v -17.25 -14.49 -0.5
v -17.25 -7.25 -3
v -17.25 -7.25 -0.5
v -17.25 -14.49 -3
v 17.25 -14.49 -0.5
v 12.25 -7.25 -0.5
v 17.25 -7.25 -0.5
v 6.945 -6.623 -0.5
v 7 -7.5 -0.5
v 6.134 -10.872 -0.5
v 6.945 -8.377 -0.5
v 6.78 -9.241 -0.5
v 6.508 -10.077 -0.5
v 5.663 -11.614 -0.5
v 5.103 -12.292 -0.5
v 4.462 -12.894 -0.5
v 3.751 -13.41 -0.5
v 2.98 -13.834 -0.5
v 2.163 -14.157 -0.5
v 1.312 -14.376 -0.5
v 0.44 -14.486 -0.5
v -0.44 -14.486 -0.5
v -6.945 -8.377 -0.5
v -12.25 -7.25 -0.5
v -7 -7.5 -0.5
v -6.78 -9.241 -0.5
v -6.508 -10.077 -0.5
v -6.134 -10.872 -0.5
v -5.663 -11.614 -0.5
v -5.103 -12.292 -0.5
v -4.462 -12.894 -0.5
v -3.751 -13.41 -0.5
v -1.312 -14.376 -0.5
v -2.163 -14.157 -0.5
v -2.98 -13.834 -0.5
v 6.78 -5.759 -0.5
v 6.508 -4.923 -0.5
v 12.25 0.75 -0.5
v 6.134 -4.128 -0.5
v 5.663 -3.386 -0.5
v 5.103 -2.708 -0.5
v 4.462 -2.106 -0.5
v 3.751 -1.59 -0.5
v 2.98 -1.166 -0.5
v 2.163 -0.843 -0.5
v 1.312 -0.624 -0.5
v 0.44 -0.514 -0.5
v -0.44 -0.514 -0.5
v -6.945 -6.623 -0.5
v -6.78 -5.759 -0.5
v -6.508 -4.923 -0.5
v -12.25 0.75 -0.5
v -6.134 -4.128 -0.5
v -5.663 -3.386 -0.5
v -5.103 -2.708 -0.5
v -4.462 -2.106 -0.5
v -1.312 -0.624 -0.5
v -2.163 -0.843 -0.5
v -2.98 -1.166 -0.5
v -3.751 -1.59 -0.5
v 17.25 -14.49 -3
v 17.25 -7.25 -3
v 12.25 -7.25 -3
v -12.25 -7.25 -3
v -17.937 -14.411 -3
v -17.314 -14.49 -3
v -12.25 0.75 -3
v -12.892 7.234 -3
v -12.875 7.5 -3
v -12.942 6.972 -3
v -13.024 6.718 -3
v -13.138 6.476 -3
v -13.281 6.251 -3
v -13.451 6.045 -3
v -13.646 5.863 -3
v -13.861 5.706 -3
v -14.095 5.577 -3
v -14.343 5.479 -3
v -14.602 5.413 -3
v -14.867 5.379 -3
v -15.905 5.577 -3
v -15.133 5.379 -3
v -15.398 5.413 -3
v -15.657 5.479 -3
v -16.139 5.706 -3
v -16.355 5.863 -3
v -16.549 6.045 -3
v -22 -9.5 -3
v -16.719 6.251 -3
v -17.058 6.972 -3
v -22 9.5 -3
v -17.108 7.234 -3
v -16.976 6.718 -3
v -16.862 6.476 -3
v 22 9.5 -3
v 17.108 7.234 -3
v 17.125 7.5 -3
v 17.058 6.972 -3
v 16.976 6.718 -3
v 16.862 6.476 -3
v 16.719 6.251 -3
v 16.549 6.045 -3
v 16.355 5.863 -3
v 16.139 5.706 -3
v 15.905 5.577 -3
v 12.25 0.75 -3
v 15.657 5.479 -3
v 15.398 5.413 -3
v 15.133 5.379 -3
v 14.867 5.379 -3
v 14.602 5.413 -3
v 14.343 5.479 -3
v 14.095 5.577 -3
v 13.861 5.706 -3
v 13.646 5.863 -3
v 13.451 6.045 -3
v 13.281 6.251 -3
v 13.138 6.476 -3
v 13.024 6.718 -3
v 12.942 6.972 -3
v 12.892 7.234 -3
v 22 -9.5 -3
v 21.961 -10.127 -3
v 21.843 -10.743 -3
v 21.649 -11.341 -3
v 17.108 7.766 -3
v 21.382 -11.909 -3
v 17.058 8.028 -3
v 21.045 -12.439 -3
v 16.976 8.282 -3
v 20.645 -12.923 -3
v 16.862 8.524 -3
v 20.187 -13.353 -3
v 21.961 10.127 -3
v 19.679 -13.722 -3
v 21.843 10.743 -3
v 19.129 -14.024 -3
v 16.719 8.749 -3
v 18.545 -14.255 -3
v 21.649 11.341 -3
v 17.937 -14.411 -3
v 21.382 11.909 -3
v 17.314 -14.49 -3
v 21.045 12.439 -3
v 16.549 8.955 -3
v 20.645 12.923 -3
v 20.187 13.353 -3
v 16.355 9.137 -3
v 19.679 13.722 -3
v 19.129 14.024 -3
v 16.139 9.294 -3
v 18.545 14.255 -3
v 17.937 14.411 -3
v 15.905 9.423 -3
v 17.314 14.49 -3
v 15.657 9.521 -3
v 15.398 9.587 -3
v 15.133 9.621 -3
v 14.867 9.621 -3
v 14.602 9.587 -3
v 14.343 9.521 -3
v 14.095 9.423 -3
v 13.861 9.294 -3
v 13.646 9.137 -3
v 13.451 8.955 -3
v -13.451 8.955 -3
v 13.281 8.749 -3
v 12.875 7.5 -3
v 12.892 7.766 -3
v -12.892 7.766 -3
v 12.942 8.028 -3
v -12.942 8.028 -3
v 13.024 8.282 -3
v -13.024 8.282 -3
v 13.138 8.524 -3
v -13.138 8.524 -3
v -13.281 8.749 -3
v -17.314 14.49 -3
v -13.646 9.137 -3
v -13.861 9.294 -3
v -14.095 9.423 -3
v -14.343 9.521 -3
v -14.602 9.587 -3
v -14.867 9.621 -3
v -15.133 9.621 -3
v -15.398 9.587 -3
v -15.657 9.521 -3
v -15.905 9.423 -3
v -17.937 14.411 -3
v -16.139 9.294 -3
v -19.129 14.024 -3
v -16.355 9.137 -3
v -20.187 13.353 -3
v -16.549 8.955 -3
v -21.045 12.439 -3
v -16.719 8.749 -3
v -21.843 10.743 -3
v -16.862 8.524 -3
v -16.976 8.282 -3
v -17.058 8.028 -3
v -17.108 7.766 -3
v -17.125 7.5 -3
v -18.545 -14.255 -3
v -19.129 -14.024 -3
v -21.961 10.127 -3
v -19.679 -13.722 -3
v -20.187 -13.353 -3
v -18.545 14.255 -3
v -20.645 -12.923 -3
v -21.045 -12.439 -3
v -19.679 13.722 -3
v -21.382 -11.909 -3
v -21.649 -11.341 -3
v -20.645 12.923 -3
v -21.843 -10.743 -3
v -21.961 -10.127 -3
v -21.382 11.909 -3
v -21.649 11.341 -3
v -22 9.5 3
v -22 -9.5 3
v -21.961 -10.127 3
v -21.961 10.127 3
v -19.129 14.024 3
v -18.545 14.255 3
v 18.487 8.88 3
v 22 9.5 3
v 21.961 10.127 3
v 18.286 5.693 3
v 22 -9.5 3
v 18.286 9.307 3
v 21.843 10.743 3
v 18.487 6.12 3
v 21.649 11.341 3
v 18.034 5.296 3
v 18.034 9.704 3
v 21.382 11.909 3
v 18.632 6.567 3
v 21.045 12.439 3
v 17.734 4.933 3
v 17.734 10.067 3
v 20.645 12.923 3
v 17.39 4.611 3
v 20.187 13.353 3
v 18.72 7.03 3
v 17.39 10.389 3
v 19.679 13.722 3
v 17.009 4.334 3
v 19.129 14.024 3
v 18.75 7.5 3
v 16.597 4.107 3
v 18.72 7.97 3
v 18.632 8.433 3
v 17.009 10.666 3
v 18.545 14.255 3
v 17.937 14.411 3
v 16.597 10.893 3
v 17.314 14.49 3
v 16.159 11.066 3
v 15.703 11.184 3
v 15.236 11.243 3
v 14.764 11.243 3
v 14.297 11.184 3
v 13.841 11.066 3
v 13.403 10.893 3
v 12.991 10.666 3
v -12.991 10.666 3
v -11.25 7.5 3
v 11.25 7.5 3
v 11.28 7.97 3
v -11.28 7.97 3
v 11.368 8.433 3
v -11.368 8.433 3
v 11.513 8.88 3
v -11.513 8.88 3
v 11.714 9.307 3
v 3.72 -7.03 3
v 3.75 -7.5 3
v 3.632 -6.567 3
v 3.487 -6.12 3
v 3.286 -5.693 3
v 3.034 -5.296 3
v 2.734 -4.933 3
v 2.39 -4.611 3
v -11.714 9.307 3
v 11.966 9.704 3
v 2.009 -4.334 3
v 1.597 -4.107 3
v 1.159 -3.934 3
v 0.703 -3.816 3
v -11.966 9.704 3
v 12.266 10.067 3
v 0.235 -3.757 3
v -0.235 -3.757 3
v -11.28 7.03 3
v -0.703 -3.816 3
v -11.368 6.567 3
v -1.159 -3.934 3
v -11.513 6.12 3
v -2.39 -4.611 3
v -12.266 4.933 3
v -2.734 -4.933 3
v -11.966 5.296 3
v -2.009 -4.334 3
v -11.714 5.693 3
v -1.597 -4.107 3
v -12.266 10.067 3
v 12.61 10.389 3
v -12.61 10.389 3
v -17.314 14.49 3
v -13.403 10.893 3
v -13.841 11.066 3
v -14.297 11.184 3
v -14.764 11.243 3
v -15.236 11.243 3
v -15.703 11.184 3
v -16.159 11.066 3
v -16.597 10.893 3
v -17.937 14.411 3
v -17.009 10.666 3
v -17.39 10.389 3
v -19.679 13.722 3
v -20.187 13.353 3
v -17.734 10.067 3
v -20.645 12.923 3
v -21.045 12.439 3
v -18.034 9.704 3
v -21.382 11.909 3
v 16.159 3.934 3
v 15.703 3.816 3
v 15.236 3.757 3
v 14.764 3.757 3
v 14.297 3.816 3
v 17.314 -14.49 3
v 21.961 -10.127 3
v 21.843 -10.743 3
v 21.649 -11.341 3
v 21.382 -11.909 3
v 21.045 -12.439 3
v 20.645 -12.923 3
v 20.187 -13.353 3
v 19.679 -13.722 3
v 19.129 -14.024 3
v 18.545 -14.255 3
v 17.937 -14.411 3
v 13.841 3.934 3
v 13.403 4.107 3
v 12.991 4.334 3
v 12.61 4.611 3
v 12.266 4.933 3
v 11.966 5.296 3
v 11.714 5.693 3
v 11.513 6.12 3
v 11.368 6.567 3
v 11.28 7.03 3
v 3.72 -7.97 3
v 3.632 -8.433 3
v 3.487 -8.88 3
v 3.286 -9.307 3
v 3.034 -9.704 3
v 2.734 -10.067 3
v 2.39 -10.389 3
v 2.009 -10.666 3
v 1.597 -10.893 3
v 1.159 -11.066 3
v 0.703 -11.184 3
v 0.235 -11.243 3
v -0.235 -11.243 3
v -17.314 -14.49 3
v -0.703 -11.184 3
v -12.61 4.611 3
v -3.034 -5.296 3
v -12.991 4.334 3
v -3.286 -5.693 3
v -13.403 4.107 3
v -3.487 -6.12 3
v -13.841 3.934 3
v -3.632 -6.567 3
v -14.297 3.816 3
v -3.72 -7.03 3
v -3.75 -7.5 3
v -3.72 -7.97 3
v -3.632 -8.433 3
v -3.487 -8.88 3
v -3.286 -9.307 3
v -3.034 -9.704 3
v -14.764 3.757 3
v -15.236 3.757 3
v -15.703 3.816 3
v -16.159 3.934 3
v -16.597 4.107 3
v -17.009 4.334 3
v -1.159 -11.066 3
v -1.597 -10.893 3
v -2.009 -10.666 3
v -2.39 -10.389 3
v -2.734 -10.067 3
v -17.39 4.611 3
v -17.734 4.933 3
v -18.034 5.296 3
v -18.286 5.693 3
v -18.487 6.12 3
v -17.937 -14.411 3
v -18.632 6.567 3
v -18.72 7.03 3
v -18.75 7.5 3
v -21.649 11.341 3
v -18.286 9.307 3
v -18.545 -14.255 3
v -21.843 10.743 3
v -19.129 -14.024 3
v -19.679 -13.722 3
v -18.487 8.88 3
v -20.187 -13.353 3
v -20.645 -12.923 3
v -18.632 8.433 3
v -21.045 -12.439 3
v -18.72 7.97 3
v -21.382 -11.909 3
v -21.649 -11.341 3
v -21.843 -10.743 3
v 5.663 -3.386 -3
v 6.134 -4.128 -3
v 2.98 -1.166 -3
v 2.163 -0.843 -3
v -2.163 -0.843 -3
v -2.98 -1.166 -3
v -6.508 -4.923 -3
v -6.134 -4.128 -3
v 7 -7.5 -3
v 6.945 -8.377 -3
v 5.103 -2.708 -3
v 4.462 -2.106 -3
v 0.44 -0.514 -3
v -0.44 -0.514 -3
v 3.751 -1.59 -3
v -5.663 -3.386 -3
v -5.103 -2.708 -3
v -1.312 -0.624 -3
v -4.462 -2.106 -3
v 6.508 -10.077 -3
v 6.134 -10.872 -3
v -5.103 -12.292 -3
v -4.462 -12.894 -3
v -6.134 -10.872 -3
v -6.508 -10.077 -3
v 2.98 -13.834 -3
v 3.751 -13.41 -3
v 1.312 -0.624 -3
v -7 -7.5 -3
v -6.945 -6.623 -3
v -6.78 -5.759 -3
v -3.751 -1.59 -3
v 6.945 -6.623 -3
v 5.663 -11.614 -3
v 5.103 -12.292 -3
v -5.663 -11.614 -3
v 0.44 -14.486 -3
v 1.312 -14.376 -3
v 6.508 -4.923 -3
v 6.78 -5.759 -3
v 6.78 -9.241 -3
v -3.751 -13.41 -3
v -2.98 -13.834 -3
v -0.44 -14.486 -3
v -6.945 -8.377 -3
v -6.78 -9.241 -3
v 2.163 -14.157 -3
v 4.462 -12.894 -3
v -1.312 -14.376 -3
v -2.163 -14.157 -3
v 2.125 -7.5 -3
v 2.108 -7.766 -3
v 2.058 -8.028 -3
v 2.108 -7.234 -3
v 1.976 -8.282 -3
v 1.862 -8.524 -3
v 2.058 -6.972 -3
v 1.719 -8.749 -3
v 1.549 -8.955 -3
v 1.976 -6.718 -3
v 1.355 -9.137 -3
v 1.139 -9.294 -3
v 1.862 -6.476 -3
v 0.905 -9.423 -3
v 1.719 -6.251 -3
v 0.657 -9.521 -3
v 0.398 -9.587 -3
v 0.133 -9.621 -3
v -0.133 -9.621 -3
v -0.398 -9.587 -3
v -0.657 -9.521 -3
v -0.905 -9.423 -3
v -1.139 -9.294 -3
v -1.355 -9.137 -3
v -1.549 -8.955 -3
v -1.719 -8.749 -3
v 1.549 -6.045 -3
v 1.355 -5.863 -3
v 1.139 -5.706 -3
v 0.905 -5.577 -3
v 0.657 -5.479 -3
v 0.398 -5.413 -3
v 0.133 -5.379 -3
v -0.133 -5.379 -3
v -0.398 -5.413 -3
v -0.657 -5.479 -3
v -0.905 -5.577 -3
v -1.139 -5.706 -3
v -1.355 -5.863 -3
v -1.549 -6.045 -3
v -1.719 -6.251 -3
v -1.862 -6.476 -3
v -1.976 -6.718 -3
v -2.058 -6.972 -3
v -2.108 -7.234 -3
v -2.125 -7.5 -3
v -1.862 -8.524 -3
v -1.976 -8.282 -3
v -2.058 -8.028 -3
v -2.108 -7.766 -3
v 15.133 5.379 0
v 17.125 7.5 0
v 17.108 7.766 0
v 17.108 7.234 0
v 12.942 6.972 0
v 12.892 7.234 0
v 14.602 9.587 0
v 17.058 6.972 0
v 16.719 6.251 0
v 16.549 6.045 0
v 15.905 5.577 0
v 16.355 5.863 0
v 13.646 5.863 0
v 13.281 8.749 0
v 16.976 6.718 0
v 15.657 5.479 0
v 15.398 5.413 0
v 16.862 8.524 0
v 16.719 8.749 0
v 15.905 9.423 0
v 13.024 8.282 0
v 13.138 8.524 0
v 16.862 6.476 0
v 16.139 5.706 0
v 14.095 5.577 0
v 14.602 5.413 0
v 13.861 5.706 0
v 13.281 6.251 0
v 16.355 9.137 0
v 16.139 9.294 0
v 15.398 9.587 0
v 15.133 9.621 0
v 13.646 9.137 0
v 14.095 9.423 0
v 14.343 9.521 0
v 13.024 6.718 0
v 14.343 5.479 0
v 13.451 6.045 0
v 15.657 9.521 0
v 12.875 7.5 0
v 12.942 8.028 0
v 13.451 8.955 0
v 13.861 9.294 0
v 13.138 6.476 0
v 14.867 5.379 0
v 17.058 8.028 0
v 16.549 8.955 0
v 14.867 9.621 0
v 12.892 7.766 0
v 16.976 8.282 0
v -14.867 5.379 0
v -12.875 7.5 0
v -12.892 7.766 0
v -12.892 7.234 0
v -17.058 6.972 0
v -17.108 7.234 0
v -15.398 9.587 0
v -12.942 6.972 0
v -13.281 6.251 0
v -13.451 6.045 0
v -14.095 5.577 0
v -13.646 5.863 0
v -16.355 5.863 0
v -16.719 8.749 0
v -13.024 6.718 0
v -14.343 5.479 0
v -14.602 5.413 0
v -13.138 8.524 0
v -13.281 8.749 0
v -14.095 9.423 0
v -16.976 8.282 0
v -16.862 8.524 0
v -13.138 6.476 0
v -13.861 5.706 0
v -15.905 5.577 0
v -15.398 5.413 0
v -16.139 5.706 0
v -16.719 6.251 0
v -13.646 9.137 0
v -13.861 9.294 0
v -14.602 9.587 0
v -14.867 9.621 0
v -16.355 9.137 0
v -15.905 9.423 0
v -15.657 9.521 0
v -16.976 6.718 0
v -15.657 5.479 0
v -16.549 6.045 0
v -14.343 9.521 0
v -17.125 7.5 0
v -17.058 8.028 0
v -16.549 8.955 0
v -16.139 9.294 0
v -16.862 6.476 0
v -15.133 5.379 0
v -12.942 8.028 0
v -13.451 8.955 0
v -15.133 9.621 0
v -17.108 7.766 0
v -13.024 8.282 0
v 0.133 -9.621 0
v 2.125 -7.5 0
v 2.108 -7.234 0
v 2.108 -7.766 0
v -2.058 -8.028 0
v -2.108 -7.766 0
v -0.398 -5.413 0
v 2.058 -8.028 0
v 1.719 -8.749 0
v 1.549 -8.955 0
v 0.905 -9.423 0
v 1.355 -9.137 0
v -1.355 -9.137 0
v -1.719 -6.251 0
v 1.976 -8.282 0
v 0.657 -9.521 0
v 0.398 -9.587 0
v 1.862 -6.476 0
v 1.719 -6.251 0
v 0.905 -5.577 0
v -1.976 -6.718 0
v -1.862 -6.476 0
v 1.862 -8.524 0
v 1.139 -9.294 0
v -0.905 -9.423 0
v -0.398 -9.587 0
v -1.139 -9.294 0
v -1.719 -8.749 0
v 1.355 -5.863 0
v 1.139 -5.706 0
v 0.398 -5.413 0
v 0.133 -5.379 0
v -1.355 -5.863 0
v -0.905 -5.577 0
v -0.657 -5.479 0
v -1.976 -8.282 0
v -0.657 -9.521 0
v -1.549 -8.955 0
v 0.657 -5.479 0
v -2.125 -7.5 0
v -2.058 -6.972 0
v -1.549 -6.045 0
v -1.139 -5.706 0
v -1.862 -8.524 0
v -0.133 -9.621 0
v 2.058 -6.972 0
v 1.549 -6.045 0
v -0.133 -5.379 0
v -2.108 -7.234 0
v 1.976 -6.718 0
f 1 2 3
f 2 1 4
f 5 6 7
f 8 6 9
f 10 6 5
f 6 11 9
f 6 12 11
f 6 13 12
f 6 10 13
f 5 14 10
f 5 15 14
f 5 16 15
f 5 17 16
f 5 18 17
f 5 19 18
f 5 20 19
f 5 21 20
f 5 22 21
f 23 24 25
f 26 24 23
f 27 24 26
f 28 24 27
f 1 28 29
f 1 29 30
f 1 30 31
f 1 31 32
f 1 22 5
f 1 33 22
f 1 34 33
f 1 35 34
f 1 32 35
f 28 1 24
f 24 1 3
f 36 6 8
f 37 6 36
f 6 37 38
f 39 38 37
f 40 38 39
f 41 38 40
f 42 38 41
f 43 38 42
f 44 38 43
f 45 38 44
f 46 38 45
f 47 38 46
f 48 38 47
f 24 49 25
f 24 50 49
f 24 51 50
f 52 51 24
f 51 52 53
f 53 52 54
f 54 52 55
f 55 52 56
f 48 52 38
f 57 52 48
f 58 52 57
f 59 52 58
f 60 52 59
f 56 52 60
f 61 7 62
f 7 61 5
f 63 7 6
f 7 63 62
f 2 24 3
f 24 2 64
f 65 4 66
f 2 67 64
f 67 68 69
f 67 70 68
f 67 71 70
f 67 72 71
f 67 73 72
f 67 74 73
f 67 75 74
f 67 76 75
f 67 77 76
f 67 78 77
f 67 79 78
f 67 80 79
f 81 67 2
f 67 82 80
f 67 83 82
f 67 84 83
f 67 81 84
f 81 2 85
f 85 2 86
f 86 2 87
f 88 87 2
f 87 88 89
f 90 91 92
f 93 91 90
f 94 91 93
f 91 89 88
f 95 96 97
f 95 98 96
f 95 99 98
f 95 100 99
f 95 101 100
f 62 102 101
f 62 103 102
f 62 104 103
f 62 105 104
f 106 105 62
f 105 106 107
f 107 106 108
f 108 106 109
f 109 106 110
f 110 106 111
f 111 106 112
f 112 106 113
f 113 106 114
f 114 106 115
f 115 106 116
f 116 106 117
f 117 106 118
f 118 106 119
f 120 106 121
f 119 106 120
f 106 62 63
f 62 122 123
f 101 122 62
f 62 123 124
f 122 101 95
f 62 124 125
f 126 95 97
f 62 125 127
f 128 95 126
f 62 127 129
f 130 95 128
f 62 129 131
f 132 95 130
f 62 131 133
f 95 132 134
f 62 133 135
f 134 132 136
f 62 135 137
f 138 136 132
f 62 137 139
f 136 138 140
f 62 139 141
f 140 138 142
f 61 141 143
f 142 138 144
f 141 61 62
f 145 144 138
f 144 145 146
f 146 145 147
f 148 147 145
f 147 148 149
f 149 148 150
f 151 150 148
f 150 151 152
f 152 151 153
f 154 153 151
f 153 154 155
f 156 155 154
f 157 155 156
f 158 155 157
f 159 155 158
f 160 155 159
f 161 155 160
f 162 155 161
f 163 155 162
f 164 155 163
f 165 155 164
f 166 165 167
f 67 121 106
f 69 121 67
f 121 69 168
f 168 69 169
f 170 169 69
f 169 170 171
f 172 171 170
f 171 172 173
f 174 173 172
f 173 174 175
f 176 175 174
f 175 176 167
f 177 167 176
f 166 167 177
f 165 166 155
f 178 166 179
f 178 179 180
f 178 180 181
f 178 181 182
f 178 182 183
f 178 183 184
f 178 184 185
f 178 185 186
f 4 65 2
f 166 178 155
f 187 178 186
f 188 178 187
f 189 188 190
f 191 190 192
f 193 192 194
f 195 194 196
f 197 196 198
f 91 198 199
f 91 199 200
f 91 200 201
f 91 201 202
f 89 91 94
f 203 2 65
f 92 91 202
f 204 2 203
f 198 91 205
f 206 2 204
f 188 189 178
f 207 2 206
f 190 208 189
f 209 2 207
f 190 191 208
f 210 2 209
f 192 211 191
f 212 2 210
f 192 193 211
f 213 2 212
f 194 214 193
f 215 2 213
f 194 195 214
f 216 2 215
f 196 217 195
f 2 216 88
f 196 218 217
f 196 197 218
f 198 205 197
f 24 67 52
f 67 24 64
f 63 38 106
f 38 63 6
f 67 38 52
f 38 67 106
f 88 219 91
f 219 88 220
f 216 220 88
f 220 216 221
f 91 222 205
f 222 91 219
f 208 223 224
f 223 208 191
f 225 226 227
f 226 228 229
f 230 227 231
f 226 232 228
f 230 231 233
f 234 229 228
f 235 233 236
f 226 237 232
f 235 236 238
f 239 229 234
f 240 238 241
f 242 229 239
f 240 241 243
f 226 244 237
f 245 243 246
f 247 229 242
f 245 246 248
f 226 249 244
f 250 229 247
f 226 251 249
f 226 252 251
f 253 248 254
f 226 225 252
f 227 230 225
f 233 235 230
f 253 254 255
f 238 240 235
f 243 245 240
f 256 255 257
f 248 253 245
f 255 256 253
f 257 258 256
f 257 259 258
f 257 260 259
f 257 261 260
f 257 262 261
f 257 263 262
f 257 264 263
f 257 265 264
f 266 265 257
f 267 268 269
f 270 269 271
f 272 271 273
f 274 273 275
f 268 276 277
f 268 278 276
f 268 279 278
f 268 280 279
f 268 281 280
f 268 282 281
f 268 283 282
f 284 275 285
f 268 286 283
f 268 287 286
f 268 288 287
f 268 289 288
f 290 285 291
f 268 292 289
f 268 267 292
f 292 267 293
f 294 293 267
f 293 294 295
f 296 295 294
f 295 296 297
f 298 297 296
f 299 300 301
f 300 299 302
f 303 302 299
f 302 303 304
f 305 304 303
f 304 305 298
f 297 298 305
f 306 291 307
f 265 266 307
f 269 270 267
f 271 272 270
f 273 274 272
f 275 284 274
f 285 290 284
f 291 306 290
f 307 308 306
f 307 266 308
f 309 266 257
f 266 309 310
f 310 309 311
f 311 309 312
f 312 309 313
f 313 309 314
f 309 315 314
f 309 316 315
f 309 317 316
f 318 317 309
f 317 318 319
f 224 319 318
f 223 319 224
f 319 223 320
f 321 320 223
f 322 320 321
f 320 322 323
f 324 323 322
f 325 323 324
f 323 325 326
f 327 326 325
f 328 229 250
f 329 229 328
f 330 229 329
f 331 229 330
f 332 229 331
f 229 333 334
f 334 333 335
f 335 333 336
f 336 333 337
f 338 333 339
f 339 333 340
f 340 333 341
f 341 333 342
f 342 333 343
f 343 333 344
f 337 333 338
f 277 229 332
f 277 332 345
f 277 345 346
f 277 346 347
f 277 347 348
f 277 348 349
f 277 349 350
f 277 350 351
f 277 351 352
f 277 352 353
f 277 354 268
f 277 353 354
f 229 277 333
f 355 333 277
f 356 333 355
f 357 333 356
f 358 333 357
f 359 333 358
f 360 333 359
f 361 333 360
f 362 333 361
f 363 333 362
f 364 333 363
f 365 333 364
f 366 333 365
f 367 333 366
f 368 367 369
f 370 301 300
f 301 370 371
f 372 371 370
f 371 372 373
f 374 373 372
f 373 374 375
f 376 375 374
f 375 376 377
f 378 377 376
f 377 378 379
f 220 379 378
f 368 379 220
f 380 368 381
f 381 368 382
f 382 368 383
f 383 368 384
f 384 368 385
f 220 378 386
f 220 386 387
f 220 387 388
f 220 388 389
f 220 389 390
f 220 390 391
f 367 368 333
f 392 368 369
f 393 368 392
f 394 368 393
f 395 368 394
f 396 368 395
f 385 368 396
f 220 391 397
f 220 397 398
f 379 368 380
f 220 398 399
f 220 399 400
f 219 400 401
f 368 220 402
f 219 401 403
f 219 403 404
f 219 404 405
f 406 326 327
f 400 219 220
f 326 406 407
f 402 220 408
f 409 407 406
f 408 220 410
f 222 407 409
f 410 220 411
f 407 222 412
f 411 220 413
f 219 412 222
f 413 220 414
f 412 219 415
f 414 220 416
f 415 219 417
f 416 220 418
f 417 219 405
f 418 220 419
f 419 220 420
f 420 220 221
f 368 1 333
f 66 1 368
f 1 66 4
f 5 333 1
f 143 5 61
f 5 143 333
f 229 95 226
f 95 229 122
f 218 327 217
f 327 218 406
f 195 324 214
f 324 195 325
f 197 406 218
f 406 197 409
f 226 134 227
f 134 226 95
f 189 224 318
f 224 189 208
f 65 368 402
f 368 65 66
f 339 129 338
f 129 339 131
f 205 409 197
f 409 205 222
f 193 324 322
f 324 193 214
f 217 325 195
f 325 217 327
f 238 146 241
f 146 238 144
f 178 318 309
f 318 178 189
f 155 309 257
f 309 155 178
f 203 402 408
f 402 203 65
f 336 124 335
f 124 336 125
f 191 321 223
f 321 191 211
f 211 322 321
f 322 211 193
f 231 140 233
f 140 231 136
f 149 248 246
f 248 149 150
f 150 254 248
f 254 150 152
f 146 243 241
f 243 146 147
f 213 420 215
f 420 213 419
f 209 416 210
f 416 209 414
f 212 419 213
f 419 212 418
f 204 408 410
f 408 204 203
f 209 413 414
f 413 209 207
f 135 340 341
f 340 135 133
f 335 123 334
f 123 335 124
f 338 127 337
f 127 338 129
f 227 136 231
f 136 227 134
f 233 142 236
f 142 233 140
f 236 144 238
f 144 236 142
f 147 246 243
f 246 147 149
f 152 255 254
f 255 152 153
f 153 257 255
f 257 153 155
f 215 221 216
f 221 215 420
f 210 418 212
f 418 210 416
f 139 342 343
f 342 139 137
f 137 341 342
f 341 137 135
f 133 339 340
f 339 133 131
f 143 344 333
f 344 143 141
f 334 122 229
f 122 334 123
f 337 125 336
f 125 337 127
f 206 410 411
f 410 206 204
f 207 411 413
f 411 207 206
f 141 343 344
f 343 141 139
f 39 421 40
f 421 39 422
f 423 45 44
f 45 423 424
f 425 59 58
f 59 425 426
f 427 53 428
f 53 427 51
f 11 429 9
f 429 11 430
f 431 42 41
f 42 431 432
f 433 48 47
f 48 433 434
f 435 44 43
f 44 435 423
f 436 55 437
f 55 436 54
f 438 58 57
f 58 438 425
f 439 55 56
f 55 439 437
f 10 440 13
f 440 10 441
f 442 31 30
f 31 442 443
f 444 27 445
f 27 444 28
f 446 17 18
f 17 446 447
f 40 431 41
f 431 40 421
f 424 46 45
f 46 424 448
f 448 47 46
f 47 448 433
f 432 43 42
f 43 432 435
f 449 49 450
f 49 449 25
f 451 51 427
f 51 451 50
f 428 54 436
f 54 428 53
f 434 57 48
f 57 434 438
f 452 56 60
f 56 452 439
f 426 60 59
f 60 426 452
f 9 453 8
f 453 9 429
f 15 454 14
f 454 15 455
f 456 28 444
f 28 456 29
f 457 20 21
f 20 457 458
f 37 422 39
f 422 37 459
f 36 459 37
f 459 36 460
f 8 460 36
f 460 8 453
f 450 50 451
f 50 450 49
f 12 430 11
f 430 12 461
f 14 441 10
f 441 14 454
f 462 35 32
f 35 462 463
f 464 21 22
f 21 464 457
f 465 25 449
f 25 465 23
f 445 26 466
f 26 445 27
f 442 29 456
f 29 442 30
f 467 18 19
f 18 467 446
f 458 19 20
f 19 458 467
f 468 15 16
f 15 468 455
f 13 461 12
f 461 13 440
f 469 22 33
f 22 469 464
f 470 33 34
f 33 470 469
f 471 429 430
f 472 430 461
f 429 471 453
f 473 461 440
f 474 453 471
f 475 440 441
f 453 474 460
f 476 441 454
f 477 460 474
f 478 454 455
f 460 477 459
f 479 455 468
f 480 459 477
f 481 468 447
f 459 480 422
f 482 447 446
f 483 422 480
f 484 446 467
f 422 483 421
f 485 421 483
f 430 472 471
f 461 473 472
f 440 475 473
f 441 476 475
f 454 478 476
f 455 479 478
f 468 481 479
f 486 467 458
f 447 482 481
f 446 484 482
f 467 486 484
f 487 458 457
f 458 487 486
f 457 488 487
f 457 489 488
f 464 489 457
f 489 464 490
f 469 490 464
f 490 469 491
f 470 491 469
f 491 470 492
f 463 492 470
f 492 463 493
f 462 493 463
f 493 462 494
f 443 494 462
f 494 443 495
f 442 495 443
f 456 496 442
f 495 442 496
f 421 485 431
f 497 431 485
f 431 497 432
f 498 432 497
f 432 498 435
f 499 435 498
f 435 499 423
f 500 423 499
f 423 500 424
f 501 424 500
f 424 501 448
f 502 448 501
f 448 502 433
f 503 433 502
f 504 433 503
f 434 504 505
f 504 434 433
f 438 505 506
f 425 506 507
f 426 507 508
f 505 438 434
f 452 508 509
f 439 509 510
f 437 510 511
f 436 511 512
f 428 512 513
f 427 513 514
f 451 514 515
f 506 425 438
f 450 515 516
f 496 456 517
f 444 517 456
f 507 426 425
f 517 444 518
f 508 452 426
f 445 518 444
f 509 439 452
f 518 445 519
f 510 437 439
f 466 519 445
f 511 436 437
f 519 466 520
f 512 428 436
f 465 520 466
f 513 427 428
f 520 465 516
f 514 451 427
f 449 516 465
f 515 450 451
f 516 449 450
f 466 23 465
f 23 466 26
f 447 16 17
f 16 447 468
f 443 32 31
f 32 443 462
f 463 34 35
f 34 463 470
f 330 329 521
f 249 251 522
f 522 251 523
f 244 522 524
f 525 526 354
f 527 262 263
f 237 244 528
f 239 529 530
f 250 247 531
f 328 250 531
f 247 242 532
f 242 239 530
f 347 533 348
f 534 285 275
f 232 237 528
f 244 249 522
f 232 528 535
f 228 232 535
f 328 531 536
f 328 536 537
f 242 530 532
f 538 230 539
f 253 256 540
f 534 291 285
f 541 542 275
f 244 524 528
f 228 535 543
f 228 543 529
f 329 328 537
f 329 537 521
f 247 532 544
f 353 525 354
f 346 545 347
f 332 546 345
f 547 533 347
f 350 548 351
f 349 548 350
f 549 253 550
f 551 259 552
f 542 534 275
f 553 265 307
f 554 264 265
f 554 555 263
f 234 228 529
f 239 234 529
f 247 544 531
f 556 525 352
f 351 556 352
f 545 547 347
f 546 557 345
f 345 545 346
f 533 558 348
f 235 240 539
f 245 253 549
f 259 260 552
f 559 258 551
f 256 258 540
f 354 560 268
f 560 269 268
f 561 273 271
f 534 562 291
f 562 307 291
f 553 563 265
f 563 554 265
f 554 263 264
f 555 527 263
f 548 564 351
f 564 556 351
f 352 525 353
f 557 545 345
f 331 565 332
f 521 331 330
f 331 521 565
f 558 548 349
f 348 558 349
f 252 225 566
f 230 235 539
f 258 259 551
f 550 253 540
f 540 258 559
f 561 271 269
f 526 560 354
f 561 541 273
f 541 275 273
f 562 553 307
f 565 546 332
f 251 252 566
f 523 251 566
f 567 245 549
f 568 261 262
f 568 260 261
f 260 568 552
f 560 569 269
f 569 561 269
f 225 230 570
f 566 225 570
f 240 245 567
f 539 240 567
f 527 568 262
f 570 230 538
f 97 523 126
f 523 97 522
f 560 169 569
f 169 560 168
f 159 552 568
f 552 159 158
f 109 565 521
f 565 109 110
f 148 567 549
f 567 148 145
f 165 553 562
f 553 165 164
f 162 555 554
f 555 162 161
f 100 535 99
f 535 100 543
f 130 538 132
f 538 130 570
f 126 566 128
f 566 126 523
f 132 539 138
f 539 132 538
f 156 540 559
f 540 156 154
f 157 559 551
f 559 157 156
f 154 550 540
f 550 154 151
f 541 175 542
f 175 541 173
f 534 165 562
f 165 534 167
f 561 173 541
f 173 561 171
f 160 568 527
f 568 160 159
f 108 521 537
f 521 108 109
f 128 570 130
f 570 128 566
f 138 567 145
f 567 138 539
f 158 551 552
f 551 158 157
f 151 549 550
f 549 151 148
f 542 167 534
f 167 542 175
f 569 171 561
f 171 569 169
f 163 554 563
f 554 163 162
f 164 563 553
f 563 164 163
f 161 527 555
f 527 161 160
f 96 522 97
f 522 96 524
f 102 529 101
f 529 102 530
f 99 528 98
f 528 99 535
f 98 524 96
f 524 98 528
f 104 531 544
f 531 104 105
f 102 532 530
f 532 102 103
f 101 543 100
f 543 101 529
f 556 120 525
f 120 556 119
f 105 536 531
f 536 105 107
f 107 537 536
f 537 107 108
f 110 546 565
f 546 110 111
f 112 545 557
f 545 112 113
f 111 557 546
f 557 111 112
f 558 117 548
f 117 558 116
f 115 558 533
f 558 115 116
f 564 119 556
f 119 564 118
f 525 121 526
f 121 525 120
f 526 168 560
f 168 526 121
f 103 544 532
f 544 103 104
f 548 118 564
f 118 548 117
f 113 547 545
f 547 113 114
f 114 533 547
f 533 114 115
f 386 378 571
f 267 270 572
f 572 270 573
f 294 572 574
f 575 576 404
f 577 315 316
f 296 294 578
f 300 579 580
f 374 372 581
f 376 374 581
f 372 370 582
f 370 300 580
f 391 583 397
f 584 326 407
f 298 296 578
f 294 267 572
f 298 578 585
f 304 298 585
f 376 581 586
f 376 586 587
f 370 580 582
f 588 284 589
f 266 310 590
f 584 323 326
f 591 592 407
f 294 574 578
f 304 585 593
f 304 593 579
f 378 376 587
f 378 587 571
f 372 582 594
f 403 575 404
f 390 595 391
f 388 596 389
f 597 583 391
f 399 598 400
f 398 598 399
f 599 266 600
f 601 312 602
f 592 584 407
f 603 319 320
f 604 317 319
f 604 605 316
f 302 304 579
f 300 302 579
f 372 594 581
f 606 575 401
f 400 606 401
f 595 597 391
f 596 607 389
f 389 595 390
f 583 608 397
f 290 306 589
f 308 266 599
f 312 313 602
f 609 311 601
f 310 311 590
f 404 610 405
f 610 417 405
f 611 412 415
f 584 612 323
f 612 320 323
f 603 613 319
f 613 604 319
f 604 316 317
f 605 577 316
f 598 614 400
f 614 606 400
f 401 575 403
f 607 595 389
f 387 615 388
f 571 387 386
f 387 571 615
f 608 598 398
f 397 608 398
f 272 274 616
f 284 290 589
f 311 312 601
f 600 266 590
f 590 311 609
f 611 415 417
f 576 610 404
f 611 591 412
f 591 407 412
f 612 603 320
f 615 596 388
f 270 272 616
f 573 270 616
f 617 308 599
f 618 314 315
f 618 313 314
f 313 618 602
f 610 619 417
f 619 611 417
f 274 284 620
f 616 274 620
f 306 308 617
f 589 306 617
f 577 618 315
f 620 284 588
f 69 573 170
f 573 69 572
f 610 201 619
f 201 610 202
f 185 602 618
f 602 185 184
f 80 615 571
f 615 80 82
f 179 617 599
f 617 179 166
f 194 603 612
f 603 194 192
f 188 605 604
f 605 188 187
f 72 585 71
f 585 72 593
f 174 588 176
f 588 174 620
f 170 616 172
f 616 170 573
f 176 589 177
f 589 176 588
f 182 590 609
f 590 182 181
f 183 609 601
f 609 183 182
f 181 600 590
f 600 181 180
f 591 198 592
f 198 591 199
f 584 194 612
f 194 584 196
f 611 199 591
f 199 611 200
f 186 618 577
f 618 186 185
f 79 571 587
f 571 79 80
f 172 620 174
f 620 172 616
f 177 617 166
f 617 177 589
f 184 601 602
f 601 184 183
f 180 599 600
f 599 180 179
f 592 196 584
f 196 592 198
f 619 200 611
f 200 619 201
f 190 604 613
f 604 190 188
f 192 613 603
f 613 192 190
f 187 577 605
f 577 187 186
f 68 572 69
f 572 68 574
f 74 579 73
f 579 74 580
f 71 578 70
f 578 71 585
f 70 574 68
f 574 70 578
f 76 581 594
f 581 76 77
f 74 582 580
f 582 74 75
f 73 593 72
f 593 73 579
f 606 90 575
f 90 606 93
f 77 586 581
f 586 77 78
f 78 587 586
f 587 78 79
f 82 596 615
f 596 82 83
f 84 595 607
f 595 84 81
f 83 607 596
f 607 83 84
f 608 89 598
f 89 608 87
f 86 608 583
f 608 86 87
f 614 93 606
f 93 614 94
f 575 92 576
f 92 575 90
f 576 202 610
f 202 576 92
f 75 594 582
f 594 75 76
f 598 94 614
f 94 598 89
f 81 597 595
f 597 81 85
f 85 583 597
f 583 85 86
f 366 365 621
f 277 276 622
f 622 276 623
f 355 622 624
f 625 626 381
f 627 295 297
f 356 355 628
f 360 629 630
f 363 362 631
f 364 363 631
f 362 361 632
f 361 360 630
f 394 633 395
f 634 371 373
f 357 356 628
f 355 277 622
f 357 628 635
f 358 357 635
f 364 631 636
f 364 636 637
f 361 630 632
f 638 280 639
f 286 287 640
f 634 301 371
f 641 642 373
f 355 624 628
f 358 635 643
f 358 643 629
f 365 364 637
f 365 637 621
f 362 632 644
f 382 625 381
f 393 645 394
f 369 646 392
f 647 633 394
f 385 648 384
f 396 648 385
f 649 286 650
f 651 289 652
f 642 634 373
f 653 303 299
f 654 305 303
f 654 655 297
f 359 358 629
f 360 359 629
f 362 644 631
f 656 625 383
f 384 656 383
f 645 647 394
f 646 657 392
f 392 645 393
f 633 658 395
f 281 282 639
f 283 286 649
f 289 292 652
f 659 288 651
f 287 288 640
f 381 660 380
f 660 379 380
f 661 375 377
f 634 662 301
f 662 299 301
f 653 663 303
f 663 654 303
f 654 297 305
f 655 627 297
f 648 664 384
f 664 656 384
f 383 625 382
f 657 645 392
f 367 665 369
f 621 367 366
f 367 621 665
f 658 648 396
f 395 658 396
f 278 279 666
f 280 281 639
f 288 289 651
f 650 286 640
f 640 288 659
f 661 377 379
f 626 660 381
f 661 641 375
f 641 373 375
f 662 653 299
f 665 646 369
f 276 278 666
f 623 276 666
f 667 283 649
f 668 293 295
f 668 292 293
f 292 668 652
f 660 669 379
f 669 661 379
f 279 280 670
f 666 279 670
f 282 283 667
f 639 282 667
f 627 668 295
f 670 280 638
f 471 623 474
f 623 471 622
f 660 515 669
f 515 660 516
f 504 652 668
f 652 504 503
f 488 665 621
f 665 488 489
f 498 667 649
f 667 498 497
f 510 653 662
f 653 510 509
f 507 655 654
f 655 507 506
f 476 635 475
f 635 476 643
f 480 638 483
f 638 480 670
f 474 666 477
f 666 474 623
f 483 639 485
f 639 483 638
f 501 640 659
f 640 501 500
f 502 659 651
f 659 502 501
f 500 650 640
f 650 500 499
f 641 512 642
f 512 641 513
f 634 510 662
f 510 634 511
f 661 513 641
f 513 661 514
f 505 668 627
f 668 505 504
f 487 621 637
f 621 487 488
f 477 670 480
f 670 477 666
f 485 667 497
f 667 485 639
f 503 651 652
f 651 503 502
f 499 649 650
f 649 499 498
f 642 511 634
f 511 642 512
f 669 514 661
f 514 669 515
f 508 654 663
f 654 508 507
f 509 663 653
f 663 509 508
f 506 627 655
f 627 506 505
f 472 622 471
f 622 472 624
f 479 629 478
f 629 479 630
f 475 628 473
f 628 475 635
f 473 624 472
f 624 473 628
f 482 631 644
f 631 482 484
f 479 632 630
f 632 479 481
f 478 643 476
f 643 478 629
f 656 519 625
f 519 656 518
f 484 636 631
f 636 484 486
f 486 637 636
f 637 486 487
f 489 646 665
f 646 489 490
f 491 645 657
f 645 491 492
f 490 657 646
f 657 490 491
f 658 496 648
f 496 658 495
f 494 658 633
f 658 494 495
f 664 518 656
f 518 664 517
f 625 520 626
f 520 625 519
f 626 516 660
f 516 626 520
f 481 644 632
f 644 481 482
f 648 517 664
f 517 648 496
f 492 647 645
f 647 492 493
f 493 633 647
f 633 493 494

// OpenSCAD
$fn = 50;


difference() {
	union() {
		difference() {
			union() {
				translate(v = [0, 0, -3.0000000000]) {
					hull() {
						translate(v = [-17.0000000000, 9.5000000000, 0]) {
							cylinder(h = 6, r = 5);
						}
						translate(v = [17.0000000000, 9.5000000000, 0]) {
							cylinder(h = 6, r = 5);
						}
						translate(v = [-17.0000000000, -9.5000000000, 0]) {
							cylinder(h = 6, r = 5);
						}
						translate(v = [17.0000000000, -9.5000000000, 0]) {
							cylinder(h = 6, r = 5);
						}
					}
				}
			}
			union() {
				translate(v = [-17.2500000000, -37.7500000000, -3.0000000000]) {
					cube(size = [34.5000000000, 30.5000000000, 2.5000000000]);
				}
				translate(v = [-12.2500000000, -7.7500000000, -3.0000000000]) {
					cube(size = [24.5000000000, 8.5000000000, 2.5000000000]);
				}
			}
		}
		union() {
			translate(v = [0, -7.5000000000, -3.0000000000]) {
				cylinder(h = 6, r = 7.0000000000);
			}
		}
	}
	union() {
		translate(v = [15, 7.5000000000, 3.0000000000]) {
			rotate(a = [0, 0, 0]) {
				difference() {
					union() {
						#translate(v = [0, 0, -6.0000000000]) {
							cylinder(h = 6, r = 2.0000000000);
						}
						#translate(v = [0, 0, -3]) {
							cylinder(h = 3, r1 = 2.1250000000, r2 = 3.7500000000);
						}
						#translate(v = [0, 0, -6.0000000000]) {
							cylinder(h = 6, r = 2.1250000000);
						}
						#translate(v = [0, 0, -6.0000000000]) {
							cylinder(h = 6, r = 2.0000000000);
						}
					}
					union();
				}
			}
		}
		translate(v = [-15, 7.5000000000, 3.0000000000]) {
			rotate(a = [0, 0, 0]) {
				difference() {
					union() {
						#translate(v = [0, 0, -6.0000000000]) {
							cylinder(h = 6, r = 2.0000000000);
						}
						#translate(v = [0, 0, -3]) {
							cylinder(h = 3, r1 = 2.1250000000, r2 = 3.7500000000);
						}
						#translate(v = [0, 0, -6.0000000000]) {
							cylinder(h = 6, r = 2.1250000000);
						}
						#translate(v = [0, 0, -6.0000000000]) {
							cylinder(h = 6, r = 2.0000000000);
						}
					}
					union();
				}
			}
		}
		translate(v = [0, -7.5000000000, 3.0000000000]) {
			rotate(a = [0, 0, 0]) {
				difference() {
					union() {
						#translate(v = [0, 0, -6.0000000000]) {
							cylinder(h = 6, r = 2.0000000000);
						}
						#translate(v = [0, 0, -3]) {
							cylinder(h = 3, r1 = 2.1250000000, r2 = 3.7500000000);
						}
						#translate(v = [0, 0, -6.0000000000]) {
							cylinder(h = 6, r = 2.1250000000);
						}
						#translate(v = [0, 0, -6.0000000000]) {
							cylinder(h = 6, r = 2.0000000000);
						}
					}
					union();
				}
			}
		}
	}
}
